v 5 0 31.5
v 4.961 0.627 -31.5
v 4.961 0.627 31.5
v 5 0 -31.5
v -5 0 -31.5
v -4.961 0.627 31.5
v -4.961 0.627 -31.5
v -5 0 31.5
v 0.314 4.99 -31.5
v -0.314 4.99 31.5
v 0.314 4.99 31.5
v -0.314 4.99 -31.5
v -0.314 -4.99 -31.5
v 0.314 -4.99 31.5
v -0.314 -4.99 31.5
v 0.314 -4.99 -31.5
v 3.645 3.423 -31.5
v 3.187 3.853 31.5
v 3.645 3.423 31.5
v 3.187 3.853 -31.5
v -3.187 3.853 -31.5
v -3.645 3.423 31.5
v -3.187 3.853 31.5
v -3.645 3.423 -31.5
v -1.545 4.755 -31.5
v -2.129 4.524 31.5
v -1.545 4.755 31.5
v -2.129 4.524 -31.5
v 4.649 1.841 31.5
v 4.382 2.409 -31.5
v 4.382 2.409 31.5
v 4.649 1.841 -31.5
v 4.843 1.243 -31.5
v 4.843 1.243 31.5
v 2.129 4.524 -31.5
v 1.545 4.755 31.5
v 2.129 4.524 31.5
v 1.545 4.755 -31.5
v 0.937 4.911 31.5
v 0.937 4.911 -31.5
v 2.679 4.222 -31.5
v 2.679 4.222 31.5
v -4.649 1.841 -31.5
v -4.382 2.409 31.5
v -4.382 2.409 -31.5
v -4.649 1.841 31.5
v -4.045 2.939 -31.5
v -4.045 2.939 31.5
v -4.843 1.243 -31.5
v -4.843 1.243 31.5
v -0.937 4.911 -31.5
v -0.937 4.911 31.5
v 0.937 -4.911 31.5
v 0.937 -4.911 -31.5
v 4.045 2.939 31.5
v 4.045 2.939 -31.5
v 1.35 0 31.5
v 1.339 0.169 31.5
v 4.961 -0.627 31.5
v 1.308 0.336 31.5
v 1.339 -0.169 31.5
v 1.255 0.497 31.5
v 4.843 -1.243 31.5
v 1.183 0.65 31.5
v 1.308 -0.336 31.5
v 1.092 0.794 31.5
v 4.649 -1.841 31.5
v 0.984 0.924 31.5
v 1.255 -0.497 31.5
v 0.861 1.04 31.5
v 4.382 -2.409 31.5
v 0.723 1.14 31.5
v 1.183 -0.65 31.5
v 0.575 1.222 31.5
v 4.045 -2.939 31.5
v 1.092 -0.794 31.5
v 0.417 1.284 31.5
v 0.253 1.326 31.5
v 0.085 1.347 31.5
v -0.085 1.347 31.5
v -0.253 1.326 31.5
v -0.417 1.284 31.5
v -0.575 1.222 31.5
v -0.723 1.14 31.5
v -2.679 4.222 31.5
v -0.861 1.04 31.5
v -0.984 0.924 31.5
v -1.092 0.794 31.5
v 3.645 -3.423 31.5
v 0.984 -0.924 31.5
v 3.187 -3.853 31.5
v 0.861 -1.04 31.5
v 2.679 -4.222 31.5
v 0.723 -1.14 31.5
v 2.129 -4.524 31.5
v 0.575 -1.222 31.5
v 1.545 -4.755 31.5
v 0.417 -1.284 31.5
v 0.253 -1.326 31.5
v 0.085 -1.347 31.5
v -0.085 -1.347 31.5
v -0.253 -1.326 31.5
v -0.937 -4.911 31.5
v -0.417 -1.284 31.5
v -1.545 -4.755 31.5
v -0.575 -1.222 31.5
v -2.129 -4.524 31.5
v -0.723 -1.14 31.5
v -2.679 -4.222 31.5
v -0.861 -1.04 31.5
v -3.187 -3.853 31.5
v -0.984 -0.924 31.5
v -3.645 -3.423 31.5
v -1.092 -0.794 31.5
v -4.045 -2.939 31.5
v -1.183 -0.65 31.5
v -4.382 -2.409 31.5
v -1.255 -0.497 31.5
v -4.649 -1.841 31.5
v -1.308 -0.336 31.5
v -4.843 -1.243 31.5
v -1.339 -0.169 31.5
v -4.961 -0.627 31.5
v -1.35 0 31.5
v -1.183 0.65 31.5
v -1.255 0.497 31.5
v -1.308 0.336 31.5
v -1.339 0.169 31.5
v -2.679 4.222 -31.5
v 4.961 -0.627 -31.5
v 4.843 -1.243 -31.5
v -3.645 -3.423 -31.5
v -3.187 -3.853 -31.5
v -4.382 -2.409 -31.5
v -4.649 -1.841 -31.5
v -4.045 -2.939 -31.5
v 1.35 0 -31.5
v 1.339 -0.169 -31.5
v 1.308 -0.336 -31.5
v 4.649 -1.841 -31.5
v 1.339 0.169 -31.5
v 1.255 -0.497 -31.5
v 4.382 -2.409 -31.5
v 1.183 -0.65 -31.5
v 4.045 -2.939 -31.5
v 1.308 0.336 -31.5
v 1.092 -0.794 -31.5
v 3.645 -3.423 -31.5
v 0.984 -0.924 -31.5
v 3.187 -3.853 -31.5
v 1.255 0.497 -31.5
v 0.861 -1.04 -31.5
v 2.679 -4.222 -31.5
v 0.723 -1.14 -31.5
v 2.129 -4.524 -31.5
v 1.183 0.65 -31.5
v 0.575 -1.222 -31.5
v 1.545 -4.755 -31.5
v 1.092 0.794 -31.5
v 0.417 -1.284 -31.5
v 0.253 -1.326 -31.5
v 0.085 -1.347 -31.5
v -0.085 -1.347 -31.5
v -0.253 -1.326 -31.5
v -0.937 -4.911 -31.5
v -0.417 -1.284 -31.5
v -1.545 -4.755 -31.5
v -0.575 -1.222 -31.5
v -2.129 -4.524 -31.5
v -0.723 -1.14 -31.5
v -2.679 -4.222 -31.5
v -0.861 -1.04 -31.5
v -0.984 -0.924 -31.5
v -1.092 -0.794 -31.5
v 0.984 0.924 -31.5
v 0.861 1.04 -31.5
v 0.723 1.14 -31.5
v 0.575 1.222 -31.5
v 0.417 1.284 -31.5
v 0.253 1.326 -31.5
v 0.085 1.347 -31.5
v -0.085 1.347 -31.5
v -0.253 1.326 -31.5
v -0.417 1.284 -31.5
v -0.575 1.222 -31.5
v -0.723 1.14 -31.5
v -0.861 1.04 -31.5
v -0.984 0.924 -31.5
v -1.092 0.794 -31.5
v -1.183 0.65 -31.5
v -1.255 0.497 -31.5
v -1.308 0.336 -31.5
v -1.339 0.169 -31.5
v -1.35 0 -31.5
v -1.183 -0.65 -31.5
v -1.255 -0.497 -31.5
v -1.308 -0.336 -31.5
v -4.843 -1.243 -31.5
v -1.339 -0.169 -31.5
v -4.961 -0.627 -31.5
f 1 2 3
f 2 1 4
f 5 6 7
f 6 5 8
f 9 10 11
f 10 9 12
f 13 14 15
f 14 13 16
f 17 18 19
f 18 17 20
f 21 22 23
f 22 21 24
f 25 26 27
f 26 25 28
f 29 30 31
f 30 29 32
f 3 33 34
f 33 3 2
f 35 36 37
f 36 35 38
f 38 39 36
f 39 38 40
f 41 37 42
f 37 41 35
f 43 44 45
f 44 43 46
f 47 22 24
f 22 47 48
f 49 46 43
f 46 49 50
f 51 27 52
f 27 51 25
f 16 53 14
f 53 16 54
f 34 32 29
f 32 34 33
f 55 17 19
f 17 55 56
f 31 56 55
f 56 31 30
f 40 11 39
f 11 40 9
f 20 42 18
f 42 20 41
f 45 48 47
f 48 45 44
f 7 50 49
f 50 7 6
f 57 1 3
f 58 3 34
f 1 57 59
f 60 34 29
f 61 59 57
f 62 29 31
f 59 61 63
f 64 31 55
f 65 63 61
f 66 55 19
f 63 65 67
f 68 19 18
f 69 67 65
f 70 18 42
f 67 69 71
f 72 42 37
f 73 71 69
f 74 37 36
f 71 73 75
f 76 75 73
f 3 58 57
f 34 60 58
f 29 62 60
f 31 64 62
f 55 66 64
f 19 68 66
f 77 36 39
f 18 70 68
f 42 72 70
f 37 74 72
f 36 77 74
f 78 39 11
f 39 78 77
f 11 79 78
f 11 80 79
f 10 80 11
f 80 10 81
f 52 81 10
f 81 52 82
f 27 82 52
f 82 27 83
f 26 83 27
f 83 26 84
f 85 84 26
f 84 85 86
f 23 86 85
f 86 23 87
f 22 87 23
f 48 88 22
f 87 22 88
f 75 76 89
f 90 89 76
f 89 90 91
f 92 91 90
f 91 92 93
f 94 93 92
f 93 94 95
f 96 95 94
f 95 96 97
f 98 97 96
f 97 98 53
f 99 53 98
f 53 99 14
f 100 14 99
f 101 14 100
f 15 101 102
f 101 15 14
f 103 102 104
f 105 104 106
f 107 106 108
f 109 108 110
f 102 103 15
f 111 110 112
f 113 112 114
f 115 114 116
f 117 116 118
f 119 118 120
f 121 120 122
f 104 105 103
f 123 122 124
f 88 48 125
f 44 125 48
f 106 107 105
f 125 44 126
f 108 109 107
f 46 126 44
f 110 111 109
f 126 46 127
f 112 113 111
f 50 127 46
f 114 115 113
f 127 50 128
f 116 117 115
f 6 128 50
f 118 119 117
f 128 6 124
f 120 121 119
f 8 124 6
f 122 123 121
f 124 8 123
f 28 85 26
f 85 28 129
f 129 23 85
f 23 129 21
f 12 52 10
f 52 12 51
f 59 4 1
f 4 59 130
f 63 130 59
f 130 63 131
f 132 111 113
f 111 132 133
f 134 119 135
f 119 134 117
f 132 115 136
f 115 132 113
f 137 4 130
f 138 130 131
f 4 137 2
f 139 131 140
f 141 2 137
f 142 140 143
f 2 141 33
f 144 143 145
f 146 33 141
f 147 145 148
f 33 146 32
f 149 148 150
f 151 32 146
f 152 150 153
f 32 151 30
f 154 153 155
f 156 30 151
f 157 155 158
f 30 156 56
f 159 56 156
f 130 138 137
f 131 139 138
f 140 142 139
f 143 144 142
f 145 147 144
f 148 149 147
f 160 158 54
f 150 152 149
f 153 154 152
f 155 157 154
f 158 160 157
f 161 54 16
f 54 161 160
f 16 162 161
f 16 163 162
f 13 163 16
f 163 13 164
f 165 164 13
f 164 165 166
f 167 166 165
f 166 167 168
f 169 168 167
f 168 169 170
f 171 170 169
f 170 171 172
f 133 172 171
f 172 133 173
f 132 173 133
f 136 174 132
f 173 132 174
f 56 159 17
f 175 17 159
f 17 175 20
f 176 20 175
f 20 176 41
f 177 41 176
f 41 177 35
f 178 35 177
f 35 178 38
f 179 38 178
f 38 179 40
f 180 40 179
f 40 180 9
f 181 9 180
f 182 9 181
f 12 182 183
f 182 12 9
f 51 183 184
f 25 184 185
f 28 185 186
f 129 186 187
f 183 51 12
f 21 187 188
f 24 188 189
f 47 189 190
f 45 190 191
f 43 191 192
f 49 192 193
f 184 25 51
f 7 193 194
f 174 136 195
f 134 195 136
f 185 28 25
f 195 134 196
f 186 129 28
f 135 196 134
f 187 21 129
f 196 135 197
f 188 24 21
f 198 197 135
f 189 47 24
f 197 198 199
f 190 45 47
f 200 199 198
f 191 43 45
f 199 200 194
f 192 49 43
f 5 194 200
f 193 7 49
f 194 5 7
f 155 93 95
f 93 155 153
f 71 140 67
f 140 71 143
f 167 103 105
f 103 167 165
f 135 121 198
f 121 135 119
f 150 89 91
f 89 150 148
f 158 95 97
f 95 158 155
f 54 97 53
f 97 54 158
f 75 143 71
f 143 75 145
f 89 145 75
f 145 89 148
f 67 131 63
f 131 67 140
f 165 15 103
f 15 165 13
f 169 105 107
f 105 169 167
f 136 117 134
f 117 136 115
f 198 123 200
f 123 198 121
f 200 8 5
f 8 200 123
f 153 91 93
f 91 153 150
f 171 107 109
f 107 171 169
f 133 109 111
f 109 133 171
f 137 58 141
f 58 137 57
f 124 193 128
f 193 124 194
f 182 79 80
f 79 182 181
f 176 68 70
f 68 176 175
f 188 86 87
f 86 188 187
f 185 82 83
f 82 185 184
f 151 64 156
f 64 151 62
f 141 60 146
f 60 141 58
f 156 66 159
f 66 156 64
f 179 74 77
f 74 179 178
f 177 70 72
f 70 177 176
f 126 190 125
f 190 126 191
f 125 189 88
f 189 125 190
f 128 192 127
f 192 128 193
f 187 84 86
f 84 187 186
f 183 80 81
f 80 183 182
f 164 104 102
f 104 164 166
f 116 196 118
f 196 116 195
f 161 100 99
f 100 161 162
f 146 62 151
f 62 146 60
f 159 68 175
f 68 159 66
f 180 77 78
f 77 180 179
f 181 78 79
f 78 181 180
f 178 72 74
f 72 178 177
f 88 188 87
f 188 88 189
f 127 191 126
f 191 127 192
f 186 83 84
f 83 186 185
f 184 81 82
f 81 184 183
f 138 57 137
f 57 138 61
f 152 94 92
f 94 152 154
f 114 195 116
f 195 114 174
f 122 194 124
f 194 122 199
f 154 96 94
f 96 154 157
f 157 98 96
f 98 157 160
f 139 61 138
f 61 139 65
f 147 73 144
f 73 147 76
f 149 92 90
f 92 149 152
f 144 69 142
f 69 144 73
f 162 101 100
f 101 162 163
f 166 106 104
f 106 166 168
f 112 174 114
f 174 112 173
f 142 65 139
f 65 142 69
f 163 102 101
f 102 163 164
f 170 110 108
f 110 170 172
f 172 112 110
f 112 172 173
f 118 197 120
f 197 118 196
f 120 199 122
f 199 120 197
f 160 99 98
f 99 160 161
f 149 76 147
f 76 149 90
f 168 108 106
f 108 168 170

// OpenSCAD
$fn = 50;


difference() {
	union() {
		translate(v = [0, 0, -31.5000000000]) {
			cylinder(h = 63, r = 5.0000000000);
		}
	}
	union() {
		translate(v = [0, 0, -100.0000000000]) {
			cylinder(h = 200, r = 1.3500000000);
		}
	}
}
